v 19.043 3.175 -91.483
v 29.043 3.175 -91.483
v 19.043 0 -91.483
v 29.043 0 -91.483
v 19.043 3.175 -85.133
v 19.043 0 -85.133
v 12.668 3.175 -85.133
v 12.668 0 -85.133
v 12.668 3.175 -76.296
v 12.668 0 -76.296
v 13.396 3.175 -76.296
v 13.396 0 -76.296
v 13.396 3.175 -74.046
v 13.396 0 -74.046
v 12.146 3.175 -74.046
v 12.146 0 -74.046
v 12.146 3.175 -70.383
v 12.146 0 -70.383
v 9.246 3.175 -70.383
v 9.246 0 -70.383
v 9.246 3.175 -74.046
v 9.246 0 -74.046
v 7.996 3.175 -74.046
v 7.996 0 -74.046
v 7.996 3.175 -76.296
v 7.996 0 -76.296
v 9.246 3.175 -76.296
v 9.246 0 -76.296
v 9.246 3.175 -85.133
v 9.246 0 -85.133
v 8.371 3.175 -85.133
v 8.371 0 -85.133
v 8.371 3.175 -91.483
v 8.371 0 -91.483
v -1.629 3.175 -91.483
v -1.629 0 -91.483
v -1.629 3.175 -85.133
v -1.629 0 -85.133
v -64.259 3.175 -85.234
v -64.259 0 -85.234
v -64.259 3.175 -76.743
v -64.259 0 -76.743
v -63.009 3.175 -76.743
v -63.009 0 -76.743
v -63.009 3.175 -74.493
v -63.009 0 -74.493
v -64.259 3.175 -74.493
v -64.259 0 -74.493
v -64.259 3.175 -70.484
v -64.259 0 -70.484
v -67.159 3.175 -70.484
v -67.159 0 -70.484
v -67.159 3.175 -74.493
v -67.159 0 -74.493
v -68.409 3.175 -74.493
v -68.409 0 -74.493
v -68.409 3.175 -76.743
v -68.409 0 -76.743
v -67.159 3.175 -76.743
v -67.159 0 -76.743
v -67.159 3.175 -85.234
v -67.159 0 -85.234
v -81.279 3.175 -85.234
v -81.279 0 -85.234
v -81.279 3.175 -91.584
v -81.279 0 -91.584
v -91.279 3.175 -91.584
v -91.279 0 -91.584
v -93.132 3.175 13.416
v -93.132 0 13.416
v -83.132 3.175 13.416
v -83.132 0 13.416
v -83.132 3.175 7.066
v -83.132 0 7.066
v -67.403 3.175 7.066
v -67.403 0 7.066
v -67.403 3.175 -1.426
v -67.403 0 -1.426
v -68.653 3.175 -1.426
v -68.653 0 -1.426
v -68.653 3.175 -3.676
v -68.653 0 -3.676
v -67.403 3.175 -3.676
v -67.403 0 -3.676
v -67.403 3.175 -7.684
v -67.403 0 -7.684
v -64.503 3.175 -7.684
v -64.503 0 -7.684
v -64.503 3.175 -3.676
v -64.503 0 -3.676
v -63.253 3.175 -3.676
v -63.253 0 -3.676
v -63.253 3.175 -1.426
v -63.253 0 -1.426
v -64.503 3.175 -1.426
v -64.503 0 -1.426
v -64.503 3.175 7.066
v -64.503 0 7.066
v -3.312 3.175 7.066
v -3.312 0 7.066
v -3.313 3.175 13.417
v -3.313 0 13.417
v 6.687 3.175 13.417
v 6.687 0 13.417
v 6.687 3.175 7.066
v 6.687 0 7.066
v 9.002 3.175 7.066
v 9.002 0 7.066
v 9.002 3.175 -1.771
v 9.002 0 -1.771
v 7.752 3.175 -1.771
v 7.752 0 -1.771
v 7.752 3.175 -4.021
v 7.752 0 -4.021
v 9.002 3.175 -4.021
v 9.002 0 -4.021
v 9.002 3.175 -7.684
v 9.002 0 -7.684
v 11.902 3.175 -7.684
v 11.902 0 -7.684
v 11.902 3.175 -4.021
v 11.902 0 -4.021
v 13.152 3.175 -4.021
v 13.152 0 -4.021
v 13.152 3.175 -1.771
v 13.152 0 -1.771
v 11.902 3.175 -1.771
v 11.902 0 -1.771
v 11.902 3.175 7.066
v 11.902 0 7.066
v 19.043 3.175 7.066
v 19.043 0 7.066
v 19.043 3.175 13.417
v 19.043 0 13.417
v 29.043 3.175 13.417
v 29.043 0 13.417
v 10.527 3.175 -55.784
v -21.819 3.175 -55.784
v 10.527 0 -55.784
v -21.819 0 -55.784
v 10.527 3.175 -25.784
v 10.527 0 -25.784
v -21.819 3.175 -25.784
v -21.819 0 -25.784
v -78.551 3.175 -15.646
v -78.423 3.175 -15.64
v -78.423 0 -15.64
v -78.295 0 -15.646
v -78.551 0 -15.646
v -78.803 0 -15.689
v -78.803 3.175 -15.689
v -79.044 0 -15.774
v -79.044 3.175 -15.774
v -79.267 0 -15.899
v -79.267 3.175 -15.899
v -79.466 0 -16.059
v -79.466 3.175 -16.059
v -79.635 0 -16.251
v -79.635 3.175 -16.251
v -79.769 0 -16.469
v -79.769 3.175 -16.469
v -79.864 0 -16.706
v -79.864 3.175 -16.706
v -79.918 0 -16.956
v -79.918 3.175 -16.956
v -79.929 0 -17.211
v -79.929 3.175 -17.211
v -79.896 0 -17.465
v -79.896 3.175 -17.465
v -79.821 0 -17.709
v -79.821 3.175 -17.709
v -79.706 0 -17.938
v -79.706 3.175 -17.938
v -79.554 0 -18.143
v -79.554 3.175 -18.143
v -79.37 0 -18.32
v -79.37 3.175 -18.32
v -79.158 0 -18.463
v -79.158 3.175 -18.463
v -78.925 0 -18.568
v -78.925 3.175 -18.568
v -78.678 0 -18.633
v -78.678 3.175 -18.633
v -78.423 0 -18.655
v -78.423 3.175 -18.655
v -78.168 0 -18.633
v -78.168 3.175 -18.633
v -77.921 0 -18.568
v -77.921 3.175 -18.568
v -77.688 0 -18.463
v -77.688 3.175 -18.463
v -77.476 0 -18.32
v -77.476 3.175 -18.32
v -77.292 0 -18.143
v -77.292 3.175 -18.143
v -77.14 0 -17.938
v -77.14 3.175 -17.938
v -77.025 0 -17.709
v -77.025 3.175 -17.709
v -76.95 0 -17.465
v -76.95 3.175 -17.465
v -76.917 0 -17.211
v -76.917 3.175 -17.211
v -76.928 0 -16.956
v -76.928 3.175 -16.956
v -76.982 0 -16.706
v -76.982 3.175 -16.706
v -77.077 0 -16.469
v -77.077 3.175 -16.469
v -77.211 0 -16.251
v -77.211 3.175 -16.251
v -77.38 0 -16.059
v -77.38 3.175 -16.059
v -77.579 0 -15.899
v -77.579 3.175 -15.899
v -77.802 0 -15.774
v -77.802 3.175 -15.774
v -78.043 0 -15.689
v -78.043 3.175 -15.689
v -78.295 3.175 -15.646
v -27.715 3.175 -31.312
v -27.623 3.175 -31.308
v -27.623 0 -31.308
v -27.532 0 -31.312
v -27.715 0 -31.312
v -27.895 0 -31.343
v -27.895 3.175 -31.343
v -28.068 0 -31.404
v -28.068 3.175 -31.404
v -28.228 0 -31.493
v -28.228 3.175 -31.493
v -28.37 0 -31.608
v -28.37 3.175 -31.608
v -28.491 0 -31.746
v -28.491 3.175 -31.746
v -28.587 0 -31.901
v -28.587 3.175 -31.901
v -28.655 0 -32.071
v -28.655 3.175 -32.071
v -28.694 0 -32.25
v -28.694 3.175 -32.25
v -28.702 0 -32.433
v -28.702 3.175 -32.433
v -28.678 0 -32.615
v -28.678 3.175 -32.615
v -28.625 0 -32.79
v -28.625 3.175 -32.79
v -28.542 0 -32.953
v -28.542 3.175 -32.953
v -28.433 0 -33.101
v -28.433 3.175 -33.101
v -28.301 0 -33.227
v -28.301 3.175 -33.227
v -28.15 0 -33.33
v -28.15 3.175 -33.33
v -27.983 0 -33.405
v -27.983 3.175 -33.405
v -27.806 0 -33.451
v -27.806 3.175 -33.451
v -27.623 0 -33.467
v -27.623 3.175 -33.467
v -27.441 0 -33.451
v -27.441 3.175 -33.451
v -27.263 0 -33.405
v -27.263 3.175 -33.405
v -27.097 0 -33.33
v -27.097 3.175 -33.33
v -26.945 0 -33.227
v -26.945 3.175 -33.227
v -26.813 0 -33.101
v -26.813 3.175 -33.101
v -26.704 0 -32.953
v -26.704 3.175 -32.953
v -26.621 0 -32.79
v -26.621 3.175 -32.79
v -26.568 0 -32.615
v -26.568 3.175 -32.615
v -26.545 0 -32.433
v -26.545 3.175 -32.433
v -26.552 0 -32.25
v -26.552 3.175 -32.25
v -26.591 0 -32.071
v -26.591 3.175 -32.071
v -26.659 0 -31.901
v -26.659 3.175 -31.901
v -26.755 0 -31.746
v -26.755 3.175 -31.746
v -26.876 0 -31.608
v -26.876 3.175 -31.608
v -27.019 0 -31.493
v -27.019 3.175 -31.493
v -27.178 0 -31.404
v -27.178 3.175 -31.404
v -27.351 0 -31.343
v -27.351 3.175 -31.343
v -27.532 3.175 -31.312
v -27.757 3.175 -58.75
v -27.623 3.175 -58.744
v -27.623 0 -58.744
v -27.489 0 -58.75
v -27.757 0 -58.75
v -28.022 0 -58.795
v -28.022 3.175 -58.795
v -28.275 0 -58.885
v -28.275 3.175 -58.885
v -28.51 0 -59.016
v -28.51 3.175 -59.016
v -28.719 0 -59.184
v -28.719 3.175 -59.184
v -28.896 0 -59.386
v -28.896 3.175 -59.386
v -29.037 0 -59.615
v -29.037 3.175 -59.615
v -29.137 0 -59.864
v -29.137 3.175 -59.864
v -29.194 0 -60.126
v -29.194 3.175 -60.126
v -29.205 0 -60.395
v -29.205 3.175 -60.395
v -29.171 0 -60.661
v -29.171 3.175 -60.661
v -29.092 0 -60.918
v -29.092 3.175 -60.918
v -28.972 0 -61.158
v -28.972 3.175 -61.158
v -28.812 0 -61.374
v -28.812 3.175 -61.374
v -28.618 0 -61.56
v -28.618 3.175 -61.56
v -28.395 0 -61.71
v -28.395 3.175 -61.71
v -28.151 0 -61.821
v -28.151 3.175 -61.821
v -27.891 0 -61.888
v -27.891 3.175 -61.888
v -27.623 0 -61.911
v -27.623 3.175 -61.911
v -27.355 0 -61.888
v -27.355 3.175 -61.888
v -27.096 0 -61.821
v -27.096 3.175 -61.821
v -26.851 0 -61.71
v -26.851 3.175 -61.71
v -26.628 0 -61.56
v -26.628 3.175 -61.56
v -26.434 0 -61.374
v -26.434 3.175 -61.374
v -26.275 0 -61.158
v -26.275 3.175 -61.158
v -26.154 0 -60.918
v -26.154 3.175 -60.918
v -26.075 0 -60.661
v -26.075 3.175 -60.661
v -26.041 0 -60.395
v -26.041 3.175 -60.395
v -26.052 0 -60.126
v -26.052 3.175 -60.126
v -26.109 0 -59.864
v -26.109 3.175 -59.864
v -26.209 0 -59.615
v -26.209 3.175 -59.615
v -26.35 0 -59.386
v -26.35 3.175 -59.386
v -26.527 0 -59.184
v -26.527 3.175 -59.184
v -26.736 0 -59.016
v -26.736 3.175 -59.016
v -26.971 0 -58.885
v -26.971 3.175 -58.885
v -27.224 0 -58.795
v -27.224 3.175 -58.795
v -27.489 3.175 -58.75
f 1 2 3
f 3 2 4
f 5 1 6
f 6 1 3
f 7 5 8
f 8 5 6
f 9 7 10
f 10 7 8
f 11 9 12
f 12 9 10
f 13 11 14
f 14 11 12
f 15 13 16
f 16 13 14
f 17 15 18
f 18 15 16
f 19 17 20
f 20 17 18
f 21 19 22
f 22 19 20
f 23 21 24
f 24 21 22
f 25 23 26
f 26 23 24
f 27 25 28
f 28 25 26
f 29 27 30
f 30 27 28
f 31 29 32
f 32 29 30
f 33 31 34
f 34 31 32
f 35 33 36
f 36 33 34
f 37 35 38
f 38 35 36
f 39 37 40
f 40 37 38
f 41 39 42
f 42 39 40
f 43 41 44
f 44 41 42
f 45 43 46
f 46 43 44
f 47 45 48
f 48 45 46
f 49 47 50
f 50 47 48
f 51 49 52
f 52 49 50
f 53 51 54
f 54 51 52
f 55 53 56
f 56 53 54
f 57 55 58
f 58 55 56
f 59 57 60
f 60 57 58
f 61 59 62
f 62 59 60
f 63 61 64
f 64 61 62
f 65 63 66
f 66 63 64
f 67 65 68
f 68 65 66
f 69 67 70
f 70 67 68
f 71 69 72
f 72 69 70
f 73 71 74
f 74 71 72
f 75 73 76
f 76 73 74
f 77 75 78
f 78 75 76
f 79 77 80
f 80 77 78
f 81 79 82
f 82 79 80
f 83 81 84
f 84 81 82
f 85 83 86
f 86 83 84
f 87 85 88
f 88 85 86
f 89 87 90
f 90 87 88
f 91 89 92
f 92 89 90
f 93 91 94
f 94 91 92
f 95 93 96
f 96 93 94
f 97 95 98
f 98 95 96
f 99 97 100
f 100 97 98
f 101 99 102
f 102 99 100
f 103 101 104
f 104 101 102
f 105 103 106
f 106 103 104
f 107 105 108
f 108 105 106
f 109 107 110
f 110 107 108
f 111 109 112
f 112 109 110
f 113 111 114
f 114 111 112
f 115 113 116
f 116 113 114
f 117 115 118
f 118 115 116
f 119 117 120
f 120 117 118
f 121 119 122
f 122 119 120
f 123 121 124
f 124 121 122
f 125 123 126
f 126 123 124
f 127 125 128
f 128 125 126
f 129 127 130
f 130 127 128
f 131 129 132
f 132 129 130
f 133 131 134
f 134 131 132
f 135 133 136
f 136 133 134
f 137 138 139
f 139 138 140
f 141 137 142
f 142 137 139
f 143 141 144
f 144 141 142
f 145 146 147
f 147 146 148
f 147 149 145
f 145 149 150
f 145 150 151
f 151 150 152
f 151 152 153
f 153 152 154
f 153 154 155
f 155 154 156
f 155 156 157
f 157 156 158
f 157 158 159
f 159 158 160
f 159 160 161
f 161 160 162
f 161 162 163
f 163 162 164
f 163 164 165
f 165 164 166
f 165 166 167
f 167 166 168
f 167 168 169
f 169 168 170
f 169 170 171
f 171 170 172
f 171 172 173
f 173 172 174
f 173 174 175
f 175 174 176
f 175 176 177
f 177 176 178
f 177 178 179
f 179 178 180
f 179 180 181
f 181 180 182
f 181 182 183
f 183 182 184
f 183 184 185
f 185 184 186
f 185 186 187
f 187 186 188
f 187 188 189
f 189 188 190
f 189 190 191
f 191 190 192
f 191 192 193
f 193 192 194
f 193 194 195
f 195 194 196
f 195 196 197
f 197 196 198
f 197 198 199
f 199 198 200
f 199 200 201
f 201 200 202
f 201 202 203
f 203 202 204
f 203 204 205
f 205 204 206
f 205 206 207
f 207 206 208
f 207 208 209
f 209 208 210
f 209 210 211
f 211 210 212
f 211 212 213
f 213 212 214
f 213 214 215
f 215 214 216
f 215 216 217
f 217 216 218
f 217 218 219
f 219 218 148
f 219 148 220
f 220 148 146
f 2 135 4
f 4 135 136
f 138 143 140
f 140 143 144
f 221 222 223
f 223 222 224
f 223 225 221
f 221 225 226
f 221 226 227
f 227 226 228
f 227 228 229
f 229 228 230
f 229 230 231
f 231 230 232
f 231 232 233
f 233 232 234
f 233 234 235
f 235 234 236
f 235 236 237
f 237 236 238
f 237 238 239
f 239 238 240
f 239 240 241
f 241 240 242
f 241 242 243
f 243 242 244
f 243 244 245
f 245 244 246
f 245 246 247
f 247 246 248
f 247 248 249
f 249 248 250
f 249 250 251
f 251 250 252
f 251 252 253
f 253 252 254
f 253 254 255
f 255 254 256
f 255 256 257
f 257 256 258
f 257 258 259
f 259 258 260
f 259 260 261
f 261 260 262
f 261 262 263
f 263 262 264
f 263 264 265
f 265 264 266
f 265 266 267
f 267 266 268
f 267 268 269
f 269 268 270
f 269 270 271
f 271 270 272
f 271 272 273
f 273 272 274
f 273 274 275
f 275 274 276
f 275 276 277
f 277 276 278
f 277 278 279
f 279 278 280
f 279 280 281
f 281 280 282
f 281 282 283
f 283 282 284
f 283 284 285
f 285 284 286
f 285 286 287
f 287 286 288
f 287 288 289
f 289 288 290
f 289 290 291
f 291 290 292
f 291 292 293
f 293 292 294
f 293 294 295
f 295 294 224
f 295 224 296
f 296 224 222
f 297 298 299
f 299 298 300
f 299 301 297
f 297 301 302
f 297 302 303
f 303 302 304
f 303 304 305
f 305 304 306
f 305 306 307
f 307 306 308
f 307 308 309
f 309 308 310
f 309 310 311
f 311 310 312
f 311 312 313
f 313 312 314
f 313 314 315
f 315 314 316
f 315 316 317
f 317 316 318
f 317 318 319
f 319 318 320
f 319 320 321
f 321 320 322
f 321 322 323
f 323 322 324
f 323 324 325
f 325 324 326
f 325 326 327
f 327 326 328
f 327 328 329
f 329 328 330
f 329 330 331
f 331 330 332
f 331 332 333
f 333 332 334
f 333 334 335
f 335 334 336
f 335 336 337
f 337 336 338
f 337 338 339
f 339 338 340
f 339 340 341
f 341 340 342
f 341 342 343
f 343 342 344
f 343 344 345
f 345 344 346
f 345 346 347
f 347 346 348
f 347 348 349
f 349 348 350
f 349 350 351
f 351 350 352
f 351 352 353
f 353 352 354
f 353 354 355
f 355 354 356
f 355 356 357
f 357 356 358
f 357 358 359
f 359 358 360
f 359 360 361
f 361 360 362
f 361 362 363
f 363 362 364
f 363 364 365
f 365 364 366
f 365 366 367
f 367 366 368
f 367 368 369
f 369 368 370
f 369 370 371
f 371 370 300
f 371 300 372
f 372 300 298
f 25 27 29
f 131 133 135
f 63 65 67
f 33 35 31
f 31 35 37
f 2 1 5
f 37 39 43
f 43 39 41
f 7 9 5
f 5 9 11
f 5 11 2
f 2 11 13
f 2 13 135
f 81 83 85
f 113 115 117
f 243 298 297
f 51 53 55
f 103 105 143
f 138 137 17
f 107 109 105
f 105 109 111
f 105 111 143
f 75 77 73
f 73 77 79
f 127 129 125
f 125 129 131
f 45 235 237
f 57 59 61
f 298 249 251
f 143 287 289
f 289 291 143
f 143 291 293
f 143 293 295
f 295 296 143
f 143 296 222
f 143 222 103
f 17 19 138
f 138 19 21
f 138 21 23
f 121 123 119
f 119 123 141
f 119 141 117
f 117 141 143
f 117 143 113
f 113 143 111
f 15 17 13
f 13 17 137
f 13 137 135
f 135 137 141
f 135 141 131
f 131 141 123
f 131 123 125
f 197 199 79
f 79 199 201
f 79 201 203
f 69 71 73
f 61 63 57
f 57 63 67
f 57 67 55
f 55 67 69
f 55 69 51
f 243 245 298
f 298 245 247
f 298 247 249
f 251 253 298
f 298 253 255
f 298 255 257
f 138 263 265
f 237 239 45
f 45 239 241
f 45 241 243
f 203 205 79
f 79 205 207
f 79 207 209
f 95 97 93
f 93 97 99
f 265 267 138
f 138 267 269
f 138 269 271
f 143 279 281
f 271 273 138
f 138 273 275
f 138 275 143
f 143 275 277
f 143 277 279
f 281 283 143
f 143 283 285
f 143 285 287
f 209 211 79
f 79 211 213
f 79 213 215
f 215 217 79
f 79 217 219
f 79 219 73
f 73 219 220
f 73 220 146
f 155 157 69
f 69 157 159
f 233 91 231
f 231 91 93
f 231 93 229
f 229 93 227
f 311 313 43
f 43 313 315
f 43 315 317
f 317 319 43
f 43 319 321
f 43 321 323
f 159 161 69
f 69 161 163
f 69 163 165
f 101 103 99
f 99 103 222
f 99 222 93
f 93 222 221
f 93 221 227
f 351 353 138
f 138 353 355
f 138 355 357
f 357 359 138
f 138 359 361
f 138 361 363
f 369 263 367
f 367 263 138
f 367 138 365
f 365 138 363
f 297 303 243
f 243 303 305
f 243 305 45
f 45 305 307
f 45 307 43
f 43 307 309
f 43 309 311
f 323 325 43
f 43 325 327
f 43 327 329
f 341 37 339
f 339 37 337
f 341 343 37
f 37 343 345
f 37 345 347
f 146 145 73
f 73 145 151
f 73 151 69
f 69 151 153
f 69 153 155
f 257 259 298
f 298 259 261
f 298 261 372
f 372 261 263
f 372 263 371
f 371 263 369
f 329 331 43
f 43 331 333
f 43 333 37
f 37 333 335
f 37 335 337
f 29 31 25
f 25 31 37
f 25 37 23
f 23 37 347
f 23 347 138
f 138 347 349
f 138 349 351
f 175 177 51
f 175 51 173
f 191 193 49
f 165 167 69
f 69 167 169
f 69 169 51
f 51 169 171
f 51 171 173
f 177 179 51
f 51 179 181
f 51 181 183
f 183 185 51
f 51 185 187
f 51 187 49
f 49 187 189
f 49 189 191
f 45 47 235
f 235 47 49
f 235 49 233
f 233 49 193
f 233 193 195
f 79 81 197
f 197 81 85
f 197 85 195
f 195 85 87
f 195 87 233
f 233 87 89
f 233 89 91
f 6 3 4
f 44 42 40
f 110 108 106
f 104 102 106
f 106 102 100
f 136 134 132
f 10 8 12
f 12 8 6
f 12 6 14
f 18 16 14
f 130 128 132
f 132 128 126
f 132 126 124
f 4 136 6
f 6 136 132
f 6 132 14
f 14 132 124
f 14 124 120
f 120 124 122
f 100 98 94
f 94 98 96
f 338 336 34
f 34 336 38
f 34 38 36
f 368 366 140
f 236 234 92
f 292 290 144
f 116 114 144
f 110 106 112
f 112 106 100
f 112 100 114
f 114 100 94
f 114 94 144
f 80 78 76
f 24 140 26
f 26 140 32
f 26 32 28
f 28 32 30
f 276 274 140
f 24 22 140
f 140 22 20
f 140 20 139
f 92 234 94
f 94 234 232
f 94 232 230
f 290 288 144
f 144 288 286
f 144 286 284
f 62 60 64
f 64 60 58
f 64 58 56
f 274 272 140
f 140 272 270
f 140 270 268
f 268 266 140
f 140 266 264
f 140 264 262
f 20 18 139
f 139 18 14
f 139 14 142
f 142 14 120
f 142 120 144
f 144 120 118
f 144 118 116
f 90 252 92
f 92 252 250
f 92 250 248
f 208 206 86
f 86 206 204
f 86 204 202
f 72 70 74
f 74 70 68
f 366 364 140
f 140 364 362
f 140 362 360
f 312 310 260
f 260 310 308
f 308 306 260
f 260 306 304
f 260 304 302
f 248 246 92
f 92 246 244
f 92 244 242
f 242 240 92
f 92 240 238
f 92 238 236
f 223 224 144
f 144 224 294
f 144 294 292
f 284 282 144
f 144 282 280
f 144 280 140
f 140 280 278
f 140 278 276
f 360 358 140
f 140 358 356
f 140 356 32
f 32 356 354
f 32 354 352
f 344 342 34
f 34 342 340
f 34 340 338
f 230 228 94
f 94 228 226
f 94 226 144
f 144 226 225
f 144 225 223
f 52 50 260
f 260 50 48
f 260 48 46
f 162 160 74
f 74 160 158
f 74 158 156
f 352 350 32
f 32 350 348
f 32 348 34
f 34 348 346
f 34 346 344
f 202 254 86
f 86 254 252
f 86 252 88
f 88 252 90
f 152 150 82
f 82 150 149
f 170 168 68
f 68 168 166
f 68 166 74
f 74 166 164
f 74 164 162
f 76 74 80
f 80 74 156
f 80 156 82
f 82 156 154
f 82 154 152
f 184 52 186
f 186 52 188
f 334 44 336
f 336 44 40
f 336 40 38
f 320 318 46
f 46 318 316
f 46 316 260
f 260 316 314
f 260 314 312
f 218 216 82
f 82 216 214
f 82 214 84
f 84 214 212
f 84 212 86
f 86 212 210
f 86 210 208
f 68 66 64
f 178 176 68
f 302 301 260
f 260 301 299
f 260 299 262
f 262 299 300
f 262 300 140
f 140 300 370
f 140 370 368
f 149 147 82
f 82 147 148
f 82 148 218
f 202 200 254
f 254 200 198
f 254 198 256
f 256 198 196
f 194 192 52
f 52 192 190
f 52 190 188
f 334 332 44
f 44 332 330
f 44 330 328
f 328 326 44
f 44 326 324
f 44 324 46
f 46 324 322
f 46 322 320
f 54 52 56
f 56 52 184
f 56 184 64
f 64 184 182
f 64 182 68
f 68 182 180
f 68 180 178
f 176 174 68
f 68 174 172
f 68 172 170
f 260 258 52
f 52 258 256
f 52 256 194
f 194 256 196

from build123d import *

# Parameters (mm, degrees)
SKETCH1_R      = 1.50705101
SKETCH1_R_2    = 1.0795
SKETCH1_R_3    = 1.58353158
SKETCH1_W      = 32.345315457
SKETCH1_H      = 30
EXTRUDE1_DEPTH = 3.175


with BuildPart() as part:
    # Sketch1 → Extrude1 (new body)
    with BuildSketch(Plane(origin=(0, 0, 0), x_dir=(1, 0, 0), z_dir=(0, 1, 0))):
        Polygon((-67.158636898, 70.484310302), (-67.158636898, 74.492800404), (-68.408636898, 74.492800404), (-68.408636898, 76.742800404), (-67.158636898, 76.742800404), (-67.158636898, 85.234310302), (-81.279057464, 85.234310302), (-81.279057464, 91.584310302), (-91.279057464, 91.584310302), (-93.1320954, -13.415689698), (-83.1320954, -13.415689698), (-83.1320954, -7.065689698), (-67.402600688, -7.065689698), (-67.402600688, 1.425820201), (-68.652600688, 1.425820201), (-68.652600688, 3.675820201), (-67.402600688, 3.675820201), (-67.402600688, 7.684310302), (-64.502600688, 7.684310302), (-64.502600688, 3.675820201), (-63.252600688, 3.675820201), (-63.252600688, 1.425820201), (-64.502600688, 1.425820201), (-64.502600688, -7.065689698), (-3.311856943, -7.065689698), (-3.31328789, -13.417119454), (6.68671211, -13.417119454), (6.68671211, -7.065689698), (9.00171211, -7.065689698), (9.00171211, 1.771032224), (7.75171211, 1.771032224), (7.75171211, 4.021032224), (9.00171211, 4.021032224), (9.00171211, 7.684310302), (11.90171211, 7.684310302), (11.90171211, 4.021032224), (13.15171211, 4.021032224), (13.15171211, 1.771032224), (11.90171211, 1.771032224), (11.90171211, -7.065689698), (19.042987782, -7.065689698), (19.042987782, -13.417119454), (29.042987782, -13.417119454), (29.042987782, 91.482596586), (19.042987782, 91.482596586), (19.042987782, 85.132545763), (12.668135492, 85.132592736), (12.668135492, 76.295870815), (13.395675901, 76.295870815), (13.395675901, 74.045870815), (12.145675901, 74.045870815), (12.145675901, 70.382596586), (9.245675901, 70.382596586), (9.245675901, 74.045874665), (7.995675901, 74.045874665), (7.995675901, 76.295874665), (9.245675901, 76.295874665), (9.245675901, 85.132596586), (8.371396704, 85.132596586), (8.371396704, 91.482596586), (-1.628603296, 91.482596586), (-1.628603296, 85.132596586), (-64.258636898, 85.234310302), (-64.258636898, 76.742800404), (-63.008636898, 76.742800404), (-63.008636898, 74.492800404), (-64.258636898, 74.492800404), (-64.258636898, 70.484310302), align=None)
        with Locations(Location((-78.42302428, 17.147481819, 0), (0, 0, 270))):
            Circle(SKETCH1_R, mode=Mode.SUBTRACT)
        with Locations(Location((-27.62307508, 32.387481819, 0), (0, 0, 270))):
            Circle(SKETCH1_R_2, mode=Mode.SUBTRACT)
        with Locations(Location((-27.62307508, 60.327481819, 0), (0, 0, 270))):
            Circle(SKETCH1_R_3, mode=Mode.SUBTRACT)
        with Locations((-5.646064502, 40.784310302)):
            Rectangle(SKETCH1_W, SKETCH1_H, mode=Mode.SUBTRACT)
    extrude(amount=EXTRUDE1_DEPTH)


solid = part.part
